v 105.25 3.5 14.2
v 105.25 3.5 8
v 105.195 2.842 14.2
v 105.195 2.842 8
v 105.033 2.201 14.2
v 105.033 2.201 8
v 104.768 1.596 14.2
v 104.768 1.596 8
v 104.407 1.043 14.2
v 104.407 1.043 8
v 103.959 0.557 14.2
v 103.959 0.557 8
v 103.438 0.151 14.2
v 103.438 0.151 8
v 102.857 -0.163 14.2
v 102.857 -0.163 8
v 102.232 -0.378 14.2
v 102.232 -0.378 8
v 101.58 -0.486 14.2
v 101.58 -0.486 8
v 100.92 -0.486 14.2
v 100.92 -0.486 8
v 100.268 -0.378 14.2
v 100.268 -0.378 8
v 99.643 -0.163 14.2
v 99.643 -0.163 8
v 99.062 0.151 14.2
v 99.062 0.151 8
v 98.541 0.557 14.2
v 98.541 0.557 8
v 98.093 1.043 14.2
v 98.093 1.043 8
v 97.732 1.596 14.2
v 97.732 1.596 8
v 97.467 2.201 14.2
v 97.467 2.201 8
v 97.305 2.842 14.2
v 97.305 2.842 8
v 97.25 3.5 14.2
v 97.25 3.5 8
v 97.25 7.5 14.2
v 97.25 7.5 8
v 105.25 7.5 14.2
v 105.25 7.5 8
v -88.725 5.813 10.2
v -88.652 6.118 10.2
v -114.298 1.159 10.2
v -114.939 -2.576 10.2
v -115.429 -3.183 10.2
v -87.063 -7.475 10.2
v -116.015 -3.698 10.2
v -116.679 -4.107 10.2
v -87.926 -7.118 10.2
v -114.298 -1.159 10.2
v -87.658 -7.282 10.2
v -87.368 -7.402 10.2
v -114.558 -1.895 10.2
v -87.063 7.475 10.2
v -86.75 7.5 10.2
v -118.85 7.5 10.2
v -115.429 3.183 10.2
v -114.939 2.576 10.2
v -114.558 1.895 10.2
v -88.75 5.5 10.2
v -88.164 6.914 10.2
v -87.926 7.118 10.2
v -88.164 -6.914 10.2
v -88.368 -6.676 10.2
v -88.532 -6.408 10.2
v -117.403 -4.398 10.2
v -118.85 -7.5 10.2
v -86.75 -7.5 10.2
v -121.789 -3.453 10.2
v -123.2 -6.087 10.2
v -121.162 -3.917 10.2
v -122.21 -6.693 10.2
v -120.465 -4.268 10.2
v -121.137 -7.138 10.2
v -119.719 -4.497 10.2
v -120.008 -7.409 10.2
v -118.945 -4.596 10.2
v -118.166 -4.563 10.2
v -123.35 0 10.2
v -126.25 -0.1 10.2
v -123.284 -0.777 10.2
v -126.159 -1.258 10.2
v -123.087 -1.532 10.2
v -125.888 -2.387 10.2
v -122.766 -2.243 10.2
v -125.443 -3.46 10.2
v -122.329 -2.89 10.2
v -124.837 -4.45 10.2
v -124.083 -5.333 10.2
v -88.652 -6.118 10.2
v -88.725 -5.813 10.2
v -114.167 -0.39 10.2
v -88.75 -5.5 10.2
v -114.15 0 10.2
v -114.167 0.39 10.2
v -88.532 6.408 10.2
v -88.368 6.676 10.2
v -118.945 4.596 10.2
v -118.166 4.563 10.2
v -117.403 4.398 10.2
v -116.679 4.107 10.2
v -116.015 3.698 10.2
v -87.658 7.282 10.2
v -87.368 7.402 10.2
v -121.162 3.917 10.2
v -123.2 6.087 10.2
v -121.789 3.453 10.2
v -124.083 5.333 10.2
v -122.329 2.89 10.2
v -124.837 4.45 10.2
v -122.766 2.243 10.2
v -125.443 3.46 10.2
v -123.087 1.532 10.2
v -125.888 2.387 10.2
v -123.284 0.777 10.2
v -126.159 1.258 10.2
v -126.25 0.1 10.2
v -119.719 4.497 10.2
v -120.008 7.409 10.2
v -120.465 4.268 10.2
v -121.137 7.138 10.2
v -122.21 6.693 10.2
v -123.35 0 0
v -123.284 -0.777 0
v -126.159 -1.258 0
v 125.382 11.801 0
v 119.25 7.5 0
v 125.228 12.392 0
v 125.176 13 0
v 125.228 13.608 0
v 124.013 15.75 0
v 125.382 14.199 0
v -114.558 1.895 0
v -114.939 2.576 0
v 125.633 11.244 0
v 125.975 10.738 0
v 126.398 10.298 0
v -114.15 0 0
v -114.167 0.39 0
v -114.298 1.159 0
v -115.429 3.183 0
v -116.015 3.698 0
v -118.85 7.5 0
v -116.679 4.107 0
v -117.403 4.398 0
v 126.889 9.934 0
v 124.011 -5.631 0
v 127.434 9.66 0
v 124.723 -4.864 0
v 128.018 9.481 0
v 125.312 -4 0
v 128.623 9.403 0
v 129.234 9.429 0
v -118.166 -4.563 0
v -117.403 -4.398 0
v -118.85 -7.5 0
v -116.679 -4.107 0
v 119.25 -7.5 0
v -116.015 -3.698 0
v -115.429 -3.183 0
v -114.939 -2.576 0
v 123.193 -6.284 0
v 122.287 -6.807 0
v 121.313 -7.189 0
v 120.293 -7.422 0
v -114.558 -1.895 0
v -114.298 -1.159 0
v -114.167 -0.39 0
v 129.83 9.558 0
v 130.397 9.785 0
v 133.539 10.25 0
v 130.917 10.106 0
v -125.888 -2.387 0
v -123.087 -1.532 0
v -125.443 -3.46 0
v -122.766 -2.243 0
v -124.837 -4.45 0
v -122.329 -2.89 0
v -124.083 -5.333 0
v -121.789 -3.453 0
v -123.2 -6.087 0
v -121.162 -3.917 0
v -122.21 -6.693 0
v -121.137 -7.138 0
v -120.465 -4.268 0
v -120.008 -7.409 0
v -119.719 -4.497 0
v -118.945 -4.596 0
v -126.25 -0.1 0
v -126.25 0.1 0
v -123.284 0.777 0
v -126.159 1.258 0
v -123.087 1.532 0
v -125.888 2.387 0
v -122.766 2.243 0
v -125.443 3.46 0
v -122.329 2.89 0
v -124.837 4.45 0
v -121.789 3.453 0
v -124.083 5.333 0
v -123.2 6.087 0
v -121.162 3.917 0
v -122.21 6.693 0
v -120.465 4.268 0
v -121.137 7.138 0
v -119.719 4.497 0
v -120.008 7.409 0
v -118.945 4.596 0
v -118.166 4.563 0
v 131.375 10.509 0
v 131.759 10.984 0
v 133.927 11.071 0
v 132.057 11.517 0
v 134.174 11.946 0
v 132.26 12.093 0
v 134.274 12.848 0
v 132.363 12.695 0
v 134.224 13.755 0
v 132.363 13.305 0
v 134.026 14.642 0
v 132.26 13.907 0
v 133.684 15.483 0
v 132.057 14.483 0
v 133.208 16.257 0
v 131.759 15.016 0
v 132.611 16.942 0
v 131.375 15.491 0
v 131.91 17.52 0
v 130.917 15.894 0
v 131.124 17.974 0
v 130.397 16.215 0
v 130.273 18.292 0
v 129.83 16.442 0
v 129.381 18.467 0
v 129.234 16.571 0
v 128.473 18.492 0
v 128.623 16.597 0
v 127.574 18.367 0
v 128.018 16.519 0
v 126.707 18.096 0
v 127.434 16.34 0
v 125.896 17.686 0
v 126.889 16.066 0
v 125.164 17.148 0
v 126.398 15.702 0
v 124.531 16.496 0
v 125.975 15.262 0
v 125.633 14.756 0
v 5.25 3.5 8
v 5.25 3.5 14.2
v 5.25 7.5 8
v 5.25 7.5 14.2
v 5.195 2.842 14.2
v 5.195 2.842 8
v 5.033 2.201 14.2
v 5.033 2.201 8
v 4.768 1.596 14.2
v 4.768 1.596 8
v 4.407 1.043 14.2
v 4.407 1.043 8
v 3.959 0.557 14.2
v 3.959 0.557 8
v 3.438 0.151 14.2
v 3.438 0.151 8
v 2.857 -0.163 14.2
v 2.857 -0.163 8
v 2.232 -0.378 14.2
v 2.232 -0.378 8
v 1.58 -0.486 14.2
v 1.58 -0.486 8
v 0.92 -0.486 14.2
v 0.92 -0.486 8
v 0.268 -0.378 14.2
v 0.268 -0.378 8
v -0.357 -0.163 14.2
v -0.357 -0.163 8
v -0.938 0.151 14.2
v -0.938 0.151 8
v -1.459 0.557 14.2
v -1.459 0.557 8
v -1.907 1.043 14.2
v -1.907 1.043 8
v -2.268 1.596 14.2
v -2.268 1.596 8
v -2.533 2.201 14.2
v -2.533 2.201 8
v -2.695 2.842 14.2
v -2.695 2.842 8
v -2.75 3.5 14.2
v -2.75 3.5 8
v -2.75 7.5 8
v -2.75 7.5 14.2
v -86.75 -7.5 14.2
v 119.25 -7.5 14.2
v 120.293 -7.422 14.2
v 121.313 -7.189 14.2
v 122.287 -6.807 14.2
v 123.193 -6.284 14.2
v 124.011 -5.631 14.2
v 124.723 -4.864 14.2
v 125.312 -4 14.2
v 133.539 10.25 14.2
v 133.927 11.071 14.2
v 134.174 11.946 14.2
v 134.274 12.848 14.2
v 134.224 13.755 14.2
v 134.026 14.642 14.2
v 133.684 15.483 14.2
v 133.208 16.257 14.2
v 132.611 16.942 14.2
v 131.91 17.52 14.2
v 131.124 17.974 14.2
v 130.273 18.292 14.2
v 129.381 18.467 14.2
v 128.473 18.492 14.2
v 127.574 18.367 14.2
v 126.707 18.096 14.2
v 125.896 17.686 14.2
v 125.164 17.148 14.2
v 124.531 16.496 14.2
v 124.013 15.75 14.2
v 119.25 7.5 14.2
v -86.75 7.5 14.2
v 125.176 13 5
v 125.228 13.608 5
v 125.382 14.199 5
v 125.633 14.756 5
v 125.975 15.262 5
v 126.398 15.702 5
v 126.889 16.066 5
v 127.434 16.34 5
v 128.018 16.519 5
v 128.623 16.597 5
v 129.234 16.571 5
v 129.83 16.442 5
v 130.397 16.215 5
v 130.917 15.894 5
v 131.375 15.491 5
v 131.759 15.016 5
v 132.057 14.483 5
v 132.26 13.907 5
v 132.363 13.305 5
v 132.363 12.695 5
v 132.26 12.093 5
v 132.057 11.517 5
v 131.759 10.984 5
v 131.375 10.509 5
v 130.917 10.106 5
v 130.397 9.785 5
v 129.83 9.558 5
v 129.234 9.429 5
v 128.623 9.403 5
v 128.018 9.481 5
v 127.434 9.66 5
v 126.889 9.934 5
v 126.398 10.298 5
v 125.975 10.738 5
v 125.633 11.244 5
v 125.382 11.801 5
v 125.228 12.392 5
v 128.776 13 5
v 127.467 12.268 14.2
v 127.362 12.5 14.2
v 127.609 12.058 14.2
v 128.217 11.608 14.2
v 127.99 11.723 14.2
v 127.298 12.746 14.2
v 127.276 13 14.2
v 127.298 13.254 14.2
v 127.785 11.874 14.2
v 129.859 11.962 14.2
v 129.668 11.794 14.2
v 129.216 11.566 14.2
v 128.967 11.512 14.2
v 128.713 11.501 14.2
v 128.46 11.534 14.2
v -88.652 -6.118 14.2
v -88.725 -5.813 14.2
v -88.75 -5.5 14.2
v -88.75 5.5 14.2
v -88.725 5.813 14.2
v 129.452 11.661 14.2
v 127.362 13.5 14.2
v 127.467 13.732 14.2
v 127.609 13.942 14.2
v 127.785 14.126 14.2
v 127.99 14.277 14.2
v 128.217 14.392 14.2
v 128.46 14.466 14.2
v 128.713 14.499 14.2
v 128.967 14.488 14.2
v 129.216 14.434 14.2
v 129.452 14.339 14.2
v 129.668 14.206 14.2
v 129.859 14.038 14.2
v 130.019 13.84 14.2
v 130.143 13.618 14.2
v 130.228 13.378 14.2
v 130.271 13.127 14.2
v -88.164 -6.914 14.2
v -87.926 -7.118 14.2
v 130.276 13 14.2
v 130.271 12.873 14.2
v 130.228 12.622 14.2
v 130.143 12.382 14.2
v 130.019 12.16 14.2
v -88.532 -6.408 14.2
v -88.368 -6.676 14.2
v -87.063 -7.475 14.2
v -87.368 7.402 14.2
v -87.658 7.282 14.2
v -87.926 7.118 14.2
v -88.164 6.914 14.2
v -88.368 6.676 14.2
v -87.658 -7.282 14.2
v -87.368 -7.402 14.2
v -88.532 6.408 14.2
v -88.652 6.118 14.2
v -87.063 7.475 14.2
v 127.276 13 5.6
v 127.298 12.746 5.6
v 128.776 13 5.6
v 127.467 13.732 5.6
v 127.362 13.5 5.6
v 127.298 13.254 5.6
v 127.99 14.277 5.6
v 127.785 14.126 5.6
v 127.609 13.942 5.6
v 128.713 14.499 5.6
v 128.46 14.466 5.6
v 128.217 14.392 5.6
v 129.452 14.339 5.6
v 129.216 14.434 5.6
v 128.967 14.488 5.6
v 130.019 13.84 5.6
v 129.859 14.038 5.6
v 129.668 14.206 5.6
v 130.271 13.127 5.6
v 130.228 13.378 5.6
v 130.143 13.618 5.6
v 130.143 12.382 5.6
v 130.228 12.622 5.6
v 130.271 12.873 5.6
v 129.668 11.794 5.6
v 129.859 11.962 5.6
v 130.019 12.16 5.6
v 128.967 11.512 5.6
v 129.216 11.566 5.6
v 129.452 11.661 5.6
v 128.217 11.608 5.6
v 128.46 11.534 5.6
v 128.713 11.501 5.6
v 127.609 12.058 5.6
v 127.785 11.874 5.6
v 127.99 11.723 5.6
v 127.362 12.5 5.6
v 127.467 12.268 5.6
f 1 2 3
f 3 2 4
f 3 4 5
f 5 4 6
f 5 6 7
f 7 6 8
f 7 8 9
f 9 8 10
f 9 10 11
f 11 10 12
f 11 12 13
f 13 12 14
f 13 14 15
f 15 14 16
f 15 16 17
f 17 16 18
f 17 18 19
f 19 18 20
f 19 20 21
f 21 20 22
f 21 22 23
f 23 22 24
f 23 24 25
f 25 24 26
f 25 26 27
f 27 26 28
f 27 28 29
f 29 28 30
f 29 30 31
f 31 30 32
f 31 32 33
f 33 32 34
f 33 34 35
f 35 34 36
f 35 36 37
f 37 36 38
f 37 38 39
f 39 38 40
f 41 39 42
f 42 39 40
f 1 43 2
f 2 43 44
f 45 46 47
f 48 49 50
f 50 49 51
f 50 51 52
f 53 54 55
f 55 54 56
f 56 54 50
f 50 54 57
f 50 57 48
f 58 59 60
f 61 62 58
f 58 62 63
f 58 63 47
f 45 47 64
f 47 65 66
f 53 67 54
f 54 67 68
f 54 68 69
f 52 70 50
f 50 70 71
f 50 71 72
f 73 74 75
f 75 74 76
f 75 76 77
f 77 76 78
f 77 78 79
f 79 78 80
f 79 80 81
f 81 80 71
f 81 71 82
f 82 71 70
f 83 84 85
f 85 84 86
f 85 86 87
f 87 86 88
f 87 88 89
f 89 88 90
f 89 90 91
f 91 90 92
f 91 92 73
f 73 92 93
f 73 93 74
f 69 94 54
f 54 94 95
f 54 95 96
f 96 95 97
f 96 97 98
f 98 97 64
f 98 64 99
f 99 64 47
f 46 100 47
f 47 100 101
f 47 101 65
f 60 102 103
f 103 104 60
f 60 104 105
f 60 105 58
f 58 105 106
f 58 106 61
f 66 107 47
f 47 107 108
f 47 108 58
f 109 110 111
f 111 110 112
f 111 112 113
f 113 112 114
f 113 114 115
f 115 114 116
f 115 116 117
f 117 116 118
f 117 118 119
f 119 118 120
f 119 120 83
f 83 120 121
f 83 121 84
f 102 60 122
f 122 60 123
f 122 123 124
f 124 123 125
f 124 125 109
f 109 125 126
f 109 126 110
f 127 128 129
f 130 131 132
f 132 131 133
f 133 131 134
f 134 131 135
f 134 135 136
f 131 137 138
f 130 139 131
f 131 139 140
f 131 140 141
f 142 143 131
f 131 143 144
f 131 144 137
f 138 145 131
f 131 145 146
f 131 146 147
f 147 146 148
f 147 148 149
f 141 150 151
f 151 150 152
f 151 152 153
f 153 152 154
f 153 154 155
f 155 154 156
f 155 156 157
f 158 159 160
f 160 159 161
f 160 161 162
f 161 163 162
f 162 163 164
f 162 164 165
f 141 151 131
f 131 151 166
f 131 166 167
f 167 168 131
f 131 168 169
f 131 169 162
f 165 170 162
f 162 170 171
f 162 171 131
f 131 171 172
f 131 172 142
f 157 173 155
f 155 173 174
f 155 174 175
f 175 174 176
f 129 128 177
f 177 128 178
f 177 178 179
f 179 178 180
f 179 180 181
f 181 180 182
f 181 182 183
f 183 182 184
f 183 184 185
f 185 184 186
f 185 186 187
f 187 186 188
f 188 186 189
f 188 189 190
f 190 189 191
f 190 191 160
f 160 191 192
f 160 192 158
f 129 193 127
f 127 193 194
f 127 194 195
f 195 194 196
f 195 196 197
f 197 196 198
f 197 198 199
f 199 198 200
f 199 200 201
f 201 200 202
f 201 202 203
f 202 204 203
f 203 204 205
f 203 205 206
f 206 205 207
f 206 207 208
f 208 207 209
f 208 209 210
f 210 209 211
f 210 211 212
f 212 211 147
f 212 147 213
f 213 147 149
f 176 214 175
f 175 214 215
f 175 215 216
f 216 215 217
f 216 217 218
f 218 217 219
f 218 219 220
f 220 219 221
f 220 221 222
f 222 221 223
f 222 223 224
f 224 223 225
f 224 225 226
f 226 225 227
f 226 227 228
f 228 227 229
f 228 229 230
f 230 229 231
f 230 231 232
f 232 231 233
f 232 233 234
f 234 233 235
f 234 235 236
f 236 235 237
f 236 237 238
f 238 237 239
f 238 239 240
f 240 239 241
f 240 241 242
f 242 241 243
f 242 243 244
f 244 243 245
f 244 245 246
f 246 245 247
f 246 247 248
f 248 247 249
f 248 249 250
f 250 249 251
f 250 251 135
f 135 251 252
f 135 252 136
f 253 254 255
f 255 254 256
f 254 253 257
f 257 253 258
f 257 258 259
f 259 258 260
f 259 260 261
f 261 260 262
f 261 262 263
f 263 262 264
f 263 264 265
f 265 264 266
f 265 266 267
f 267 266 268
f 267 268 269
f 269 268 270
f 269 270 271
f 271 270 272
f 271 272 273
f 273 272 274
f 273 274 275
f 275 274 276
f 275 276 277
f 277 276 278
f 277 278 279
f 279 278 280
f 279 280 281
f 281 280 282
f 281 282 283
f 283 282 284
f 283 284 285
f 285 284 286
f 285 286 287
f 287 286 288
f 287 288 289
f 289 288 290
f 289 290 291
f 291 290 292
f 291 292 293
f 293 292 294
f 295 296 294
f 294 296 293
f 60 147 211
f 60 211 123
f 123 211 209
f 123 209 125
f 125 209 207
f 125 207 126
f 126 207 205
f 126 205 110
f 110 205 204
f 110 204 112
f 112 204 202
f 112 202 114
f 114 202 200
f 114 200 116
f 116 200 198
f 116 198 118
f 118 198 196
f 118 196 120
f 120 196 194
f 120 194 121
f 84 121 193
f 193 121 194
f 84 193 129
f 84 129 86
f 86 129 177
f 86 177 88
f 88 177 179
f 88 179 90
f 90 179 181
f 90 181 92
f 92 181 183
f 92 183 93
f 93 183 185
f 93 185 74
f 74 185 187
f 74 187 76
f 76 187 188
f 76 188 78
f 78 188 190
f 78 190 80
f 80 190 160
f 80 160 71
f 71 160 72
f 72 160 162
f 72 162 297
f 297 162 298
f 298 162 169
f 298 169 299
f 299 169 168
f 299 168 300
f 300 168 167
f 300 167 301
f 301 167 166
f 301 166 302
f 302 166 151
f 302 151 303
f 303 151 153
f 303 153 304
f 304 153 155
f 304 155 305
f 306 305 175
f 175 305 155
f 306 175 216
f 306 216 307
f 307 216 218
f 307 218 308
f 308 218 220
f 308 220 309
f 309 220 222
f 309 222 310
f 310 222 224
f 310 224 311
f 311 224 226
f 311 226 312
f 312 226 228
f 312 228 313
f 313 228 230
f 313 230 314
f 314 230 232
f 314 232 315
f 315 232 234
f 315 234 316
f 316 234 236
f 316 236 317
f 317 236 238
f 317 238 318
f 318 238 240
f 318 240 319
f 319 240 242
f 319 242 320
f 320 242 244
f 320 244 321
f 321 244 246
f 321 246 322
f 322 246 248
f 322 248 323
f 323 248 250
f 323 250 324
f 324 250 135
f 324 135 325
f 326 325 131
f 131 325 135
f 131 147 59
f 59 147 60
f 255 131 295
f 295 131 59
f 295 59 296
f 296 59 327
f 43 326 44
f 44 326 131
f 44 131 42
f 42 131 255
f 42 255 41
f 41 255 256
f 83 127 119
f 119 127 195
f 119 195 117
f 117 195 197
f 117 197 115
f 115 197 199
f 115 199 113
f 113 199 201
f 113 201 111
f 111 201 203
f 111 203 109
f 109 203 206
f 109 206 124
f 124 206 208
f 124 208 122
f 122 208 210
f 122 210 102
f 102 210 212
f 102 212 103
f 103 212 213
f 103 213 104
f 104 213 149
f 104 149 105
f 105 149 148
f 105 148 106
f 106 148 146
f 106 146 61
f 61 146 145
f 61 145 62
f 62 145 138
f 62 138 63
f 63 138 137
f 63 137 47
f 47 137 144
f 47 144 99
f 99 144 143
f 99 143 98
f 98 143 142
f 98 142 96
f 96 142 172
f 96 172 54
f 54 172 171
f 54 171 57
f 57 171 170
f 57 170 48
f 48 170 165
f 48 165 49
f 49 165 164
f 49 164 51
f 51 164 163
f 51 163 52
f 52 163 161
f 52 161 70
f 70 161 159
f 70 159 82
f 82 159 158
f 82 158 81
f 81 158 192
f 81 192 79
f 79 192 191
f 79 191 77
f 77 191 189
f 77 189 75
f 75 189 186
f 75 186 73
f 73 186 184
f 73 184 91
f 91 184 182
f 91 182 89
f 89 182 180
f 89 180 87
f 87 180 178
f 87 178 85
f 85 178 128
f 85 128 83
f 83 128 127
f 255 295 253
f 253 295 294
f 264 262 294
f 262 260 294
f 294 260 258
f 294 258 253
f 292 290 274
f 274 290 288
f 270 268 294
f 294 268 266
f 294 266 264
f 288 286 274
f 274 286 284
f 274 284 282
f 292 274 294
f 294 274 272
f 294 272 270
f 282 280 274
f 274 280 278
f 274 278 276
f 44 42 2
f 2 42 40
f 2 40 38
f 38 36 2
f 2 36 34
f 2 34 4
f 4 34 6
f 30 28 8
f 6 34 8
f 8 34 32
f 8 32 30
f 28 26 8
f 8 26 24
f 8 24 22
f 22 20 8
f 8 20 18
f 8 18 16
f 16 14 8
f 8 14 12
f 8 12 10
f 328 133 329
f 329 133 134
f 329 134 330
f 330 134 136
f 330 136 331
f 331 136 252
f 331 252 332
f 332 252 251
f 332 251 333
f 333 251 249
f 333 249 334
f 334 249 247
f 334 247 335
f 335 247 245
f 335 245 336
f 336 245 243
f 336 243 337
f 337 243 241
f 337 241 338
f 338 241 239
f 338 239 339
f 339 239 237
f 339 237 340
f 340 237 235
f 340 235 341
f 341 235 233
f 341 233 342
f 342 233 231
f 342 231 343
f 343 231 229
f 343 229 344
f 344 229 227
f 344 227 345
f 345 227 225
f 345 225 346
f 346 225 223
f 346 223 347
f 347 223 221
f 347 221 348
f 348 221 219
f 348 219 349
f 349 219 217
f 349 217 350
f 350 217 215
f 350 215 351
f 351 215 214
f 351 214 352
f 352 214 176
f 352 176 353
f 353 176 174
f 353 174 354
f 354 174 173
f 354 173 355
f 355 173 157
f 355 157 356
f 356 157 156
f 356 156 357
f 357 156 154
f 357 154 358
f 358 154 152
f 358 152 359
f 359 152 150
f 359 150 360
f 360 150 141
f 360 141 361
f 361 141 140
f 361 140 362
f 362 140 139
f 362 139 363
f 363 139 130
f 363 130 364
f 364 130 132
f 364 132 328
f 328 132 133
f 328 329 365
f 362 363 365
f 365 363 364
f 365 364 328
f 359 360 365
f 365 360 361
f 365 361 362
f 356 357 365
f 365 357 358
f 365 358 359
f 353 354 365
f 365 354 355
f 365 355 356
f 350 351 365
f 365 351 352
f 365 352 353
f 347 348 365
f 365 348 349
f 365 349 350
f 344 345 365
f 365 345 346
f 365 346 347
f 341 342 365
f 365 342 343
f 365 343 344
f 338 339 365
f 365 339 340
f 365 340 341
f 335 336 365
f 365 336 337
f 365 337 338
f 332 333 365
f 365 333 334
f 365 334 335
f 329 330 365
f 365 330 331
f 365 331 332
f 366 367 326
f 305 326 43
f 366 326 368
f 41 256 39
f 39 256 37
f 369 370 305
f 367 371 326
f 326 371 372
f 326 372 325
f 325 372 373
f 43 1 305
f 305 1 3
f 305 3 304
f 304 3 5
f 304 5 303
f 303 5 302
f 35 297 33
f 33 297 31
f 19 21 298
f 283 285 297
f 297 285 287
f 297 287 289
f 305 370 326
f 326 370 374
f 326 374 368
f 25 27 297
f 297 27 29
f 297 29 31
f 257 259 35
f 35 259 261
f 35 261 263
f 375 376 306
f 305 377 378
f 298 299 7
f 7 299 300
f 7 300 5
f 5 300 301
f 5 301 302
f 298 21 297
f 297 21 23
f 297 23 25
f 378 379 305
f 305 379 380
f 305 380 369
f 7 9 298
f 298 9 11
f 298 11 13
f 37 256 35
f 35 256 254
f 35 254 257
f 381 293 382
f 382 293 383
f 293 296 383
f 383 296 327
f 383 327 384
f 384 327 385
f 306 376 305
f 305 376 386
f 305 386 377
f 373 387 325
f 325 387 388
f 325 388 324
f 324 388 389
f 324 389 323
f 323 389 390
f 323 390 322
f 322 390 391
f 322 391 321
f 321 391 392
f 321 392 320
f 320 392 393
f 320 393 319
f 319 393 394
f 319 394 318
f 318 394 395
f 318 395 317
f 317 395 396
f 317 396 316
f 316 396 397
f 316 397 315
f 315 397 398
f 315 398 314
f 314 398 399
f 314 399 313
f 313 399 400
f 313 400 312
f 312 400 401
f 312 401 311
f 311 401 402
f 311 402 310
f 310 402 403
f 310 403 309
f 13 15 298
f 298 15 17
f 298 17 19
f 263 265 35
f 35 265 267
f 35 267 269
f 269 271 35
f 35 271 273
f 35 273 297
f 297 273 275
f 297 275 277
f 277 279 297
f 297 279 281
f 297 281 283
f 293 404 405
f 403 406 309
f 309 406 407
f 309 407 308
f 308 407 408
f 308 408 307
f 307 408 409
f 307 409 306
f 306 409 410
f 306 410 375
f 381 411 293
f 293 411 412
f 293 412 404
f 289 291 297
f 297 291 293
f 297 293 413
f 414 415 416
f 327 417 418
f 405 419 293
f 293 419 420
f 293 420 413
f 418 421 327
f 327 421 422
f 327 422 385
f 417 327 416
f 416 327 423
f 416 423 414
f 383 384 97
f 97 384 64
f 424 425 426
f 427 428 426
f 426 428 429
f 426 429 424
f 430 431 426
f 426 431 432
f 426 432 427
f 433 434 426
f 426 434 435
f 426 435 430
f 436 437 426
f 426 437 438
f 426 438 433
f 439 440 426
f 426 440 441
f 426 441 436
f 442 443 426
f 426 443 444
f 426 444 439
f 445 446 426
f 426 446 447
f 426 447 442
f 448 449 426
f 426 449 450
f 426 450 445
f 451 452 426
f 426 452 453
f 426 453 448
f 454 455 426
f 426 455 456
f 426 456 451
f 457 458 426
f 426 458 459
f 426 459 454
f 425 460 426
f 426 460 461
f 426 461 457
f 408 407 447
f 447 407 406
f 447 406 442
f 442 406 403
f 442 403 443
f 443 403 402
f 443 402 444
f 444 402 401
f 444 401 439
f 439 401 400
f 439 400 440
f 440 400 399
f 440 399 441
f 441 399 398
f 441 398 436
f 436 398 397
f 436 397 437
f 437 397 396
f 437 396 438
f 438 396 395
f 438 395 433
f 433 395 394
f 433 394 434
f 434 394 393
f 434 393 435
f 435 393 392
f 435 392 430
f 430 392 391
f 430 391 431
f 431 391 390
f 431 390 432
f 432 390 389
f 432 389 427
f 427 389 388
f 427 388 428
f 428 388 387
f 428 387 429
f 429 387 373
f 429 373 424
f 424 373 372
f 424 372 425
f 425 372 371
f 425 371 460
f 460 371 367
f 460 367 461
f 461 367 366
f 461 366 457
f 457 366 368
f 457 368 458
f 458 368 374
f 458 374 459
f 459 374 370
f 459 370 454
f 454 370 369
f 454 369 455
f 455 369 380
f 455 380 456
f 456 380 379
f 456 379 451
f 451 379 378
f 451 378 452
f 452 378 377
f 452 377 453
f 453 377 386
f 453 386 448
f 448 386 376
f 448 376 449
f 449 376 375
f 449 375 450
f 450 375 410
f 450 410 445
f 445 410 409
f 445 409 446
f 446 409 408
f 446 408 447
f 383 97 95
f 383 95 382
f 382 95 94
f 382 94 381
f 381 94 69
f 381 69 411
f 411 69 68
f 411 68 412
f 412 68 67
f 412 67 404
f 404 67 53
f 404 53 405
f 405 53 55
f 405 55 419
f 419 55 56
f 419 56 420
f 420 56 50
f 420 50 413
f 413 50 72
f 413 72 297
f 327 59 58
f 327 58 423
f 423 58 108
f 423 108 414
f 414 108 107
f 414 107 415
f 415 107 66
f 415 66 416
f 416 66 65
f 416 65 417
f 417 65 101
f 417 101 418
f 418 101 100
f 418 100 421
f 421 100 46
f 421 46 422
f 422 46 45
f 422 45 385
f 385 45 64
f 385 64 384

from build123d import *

# Parameters (mm, degrees)
SKETCH1_R           = 4.6
SKETCH1_R_2         = 1.5
BOSS_EXTRUDE1_DEPTH = 10.2
BOSS_EXTRUDE2_DEPTH = 8
SKETCH3_R           = 3.6
CUT_EXTRUDE1_DEPTH  = 5
SKETCH4_R           = 1.5
BOSS_EXTRUDE3_DEPTH = 0.6
SKETCH5_R           = 1.5
BOSS_EXTRUDE4_DEPTH = 4
FILLET1_R           = 2


with BuildPart() as part:
    # Sketch1 → Boss-Extrude1 (new body)
    with BuildSketch(Plane.XY):
        with BuildLine():
            Line((-118.85, 7.5), (-2.75, 7.5))
            Line((-2.75, 7.5), (-2.75, 3.5))
            ThreePointArc((-2.75, 3.5), (1.25, -0.5), (5.25, 3.5))
            Line((5.25, 3.5), (5.25, 7.5))
            Line((5.25, 7.5), (97.25, 7.5))
            Line((97.25, 7.5), (97.25, 3.5))
            ThreePointArc((97.25, 3.5), (101.25, -0.5), (105.25, 3.5))
            Line((105.25, 3.5), (105.25, 7.5))
            Line((105.25, 7.5), (119.25, 7.5))
            Line((119.25, 7.5), (124.013139721, 15.75))
            ThreePointArc((124.013139721, 15.75), (131.526279442, 17.763139721), (133.539419162, 10.25))
            Line((133.539419162, 10.25), (125.312177826, -4))
            ThreePointArc((125.312177826, -4), (122.75, -6.562177826), (119.25, -7.5))
            Line((119.25, -7.5), (-118.85, -7.5))
            ThreePointArc((-118.85, -7.5), (-124.082590181, -5.332590181), (-126.25, -0.1))
            Line((-126.25, -0.1), (-126.25, 0.1))
            ThreePointArc((-126.25, 0.1), (-124.082590181, 5.332590181), (-118.85, 7.5))
        make_face()
        with Locations((-118.75, 0)):
            Circle(SKETCH1_R, mode=Mode.SUBTRACT)
        with Locations((128.776279442, 13)):
            Circle(SKETCH1_R_2, mode=Mode.SUBTRACT)
    extrude(amount=BOSS_EXTRUDE1_DEPTH)

    # Sketch2 → Boss-Extrude2 (add)
    with BuildSketch(Plane(origin=(0, 0, 0), x_dir=(-1, 0, 0), z_dir=(0, 0, -1))):
        with BuildLine():
            Line((-105.25, 3.5), (-105.25, 7.5))
            Line((-105.25, 7.5), (-97.25, 7.5))
            Line((-97.25, 7.5), (-97.25, 3.5))
            ThreePointArc((-97.25, 3.5), (-101.25, -0.5), (-105.25, 3.5))
        make_face()
        with BuildLine():
            Line((-5.25, 3.5), (-5.25, 7.5))
            Line((-5.25, 7.5), (2.75, 7.5))
            Line((2.75, 7.5), (2.75, 3.5))
            ThreePointArc((2.75, 3.5), (-1.25, -0.5), (-5.25, 3.5))
        make_face()
    extrude(amount=-BOSS_EXTRUDE2_DEPTH)

    # Sketch3 → Cut-Extrude1 (cut)
    with BuildSketch(Plane(origin=(0, 0, 0), x_dir=(-1, 0, 0), z_dir=(0, 0, -1))):
        with Locations((-128.776279442, 13)):
            Circle(SKETCH3_R)
    extrude(amount=-CUT_EXTRUDE1_DEPTH, mode=Mode.SUBTRACT)

    # Sketch4 → Boss-Extrude3 (add)
    with BuildSketch(Plane(origin=(0, 0, 5), x_dir=(-1, 0, 0), z_dir=(0, 0, -1))):
        with Locations((-128.776279442, 13)):
            Circle(SKETCH4_R)
    extrude(amount=-BOSS_EXTRUDE3_DEPTH)

    # Sketch5 → Boss-Extrude4 (add)
    with BuildSketch(Plane.XY.offset(10.2)):
        with BuildLine():
            Line((-88.75, 7.5), (-88.75, -7.5))
            Line((-88.75, -7.5), (119.25, -7.5))
            ThreePointArc((119.25, -7.5), (122.75, -6.562177826), (125.312177826, -4))
            Line((125.312177826, -4), (133.539419162, 10.25))
            ThreePointArc((133.539419162, 10.25), (131.526279442, 17.763139721), (124.013139721, 15.75))
            Line((124.013139721, 15.75), (119.25, 7.5))
            Line((119.25, 7.5), (105.25, 7.5))
            Line((105.25, 7.5), (105.25, 3.5))
            ThreePointArc((105.25, 3.5), (101.25, -0.5), (97.25, 3.5))
            Line((97.25, 3.5), (97.25, 7.5))
            Line((97.25, 7.5), (5.25, 7.5))
            Line((5.25, 7.5), (5.25, 3.5))
            ThreePointArc((5.25, 3.5), (1.25, -0.5), (-2.75, 3.5))
            Line((-2.75, 3.5), (-2.75, 7.5))
            Line((-2.75, 7.5), (-88.75, 7.5))
        make_face()
        with Locations(Location((128.776279442, 13, 0), (0, 0, 180))):
            Circle(SKETCH5_R, mode=Mode.SUBTRACT)
    extrude(amount=BOSS_EXTRUDE4_DEPTH)

    # Fillet1
    fillet1_edges = [part.edges().sort_by_distance(p)[0] for p in [
        (-88.75, 7.5, 12.2),
        (-88.75, -7.5, 12.2),
    ]]
    fillet(fillet1_edges, radius=FILLET1_R)


solid = part.part
